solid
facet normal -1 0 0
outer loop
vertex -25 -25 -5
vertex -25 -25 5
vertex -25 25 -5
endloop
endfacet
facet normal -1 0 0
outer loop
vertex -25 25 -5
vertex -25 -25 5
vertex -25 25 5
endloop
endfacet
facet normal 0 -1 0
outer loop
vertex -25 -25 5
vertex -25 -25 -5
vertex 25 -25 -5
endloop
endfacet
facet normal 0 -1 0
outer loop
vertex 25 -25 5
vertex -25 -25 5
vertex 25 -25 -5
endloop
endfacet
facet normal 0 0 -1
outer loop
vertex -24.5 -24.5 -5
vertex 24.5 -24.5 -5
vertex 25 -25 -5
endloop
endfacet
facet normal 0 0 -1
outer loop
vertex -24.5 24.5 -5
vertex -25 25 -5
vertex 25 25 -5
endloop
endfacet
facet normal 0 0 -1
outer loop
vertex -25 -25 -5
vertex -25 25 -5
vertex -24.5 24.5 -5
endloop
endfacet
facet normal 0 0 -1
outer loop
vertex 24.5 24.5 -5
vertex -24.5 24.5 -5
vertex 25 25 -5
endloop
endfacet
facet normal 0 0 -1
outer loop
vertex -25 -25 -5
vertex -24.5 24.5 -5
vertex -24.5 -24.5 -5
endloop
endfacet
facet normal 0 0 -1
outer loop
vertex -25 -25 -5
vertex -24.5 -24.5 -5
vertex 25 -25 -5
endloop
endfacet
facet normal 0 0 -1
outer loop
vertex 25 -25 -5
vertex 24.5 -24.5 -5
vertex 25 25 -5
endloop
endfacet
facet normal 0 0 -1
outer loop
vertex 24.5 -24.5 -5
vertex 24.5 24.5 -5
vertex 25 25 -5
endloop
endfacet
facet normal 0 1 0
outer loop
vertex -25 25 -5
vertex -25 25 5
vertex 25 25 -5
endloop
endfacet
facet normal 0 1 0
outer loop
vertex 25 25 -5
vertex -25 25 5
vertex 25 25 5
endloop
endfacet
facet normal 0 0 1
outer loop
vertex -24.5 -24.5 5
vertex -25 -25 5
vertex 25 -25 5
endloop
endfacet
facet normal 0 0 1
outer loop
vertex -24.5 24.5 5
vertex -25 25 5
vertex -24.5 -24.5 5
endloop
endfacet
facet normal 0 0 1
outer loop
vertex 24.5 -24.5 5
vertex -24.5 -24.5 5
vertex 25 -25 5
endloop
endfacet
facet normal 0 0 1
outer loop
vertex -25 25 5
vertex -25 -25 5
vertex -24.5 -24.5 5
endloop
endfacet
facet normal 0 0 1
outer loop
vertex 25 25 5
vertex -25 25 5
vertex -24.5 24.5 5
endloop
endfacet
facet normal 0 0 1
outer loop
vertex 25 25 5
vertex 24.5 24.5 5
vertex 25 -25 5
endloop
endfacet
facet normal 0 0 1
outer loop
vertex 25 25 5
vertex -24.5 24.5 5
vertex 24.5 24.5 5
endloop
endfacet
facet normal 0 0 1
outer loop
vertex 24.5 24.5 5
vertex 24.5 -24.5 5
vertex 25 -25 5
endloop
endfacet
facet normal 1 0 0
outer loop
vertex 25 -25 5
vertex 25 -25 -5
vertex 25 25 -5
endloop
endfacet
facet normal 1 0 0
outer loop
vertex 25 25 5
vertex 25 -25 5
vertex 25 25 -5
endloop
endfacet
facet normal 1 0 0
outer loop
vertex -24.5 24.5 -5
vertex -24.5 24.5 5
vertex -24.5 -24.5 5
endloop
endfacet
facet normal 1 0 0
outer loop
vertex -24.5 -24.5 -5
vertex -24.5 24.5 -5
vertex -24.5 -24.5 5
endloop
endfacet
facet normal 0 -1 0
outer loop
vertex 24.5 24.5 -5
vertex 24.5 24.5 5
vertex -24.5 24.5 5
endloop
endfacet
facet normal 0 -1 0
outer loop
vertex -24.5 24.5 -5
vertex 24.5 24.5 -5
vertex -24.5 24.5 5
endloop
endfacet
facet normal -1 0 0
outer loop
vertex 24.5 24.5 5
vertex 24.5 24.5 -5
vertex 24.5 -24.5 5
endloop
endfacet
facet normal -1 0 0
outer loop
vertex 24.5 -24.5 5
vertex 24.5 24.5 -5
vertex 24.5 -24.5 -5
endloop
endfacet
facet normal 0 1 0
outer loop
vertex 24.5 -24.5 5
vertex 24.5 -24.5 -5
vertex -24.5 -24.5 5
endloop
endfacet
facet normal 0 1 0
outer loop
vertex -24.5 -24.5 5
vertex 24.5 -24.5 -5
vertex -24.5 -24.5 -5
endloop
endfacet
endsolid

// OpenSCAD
//calicube by mekmekmek	
wall=1;//[mm]
a=50;//[mm]
h=10;//[mm]
difference(){
cube([a,a,h],true);
cube([a-wall,a-wall,h],true);

}
